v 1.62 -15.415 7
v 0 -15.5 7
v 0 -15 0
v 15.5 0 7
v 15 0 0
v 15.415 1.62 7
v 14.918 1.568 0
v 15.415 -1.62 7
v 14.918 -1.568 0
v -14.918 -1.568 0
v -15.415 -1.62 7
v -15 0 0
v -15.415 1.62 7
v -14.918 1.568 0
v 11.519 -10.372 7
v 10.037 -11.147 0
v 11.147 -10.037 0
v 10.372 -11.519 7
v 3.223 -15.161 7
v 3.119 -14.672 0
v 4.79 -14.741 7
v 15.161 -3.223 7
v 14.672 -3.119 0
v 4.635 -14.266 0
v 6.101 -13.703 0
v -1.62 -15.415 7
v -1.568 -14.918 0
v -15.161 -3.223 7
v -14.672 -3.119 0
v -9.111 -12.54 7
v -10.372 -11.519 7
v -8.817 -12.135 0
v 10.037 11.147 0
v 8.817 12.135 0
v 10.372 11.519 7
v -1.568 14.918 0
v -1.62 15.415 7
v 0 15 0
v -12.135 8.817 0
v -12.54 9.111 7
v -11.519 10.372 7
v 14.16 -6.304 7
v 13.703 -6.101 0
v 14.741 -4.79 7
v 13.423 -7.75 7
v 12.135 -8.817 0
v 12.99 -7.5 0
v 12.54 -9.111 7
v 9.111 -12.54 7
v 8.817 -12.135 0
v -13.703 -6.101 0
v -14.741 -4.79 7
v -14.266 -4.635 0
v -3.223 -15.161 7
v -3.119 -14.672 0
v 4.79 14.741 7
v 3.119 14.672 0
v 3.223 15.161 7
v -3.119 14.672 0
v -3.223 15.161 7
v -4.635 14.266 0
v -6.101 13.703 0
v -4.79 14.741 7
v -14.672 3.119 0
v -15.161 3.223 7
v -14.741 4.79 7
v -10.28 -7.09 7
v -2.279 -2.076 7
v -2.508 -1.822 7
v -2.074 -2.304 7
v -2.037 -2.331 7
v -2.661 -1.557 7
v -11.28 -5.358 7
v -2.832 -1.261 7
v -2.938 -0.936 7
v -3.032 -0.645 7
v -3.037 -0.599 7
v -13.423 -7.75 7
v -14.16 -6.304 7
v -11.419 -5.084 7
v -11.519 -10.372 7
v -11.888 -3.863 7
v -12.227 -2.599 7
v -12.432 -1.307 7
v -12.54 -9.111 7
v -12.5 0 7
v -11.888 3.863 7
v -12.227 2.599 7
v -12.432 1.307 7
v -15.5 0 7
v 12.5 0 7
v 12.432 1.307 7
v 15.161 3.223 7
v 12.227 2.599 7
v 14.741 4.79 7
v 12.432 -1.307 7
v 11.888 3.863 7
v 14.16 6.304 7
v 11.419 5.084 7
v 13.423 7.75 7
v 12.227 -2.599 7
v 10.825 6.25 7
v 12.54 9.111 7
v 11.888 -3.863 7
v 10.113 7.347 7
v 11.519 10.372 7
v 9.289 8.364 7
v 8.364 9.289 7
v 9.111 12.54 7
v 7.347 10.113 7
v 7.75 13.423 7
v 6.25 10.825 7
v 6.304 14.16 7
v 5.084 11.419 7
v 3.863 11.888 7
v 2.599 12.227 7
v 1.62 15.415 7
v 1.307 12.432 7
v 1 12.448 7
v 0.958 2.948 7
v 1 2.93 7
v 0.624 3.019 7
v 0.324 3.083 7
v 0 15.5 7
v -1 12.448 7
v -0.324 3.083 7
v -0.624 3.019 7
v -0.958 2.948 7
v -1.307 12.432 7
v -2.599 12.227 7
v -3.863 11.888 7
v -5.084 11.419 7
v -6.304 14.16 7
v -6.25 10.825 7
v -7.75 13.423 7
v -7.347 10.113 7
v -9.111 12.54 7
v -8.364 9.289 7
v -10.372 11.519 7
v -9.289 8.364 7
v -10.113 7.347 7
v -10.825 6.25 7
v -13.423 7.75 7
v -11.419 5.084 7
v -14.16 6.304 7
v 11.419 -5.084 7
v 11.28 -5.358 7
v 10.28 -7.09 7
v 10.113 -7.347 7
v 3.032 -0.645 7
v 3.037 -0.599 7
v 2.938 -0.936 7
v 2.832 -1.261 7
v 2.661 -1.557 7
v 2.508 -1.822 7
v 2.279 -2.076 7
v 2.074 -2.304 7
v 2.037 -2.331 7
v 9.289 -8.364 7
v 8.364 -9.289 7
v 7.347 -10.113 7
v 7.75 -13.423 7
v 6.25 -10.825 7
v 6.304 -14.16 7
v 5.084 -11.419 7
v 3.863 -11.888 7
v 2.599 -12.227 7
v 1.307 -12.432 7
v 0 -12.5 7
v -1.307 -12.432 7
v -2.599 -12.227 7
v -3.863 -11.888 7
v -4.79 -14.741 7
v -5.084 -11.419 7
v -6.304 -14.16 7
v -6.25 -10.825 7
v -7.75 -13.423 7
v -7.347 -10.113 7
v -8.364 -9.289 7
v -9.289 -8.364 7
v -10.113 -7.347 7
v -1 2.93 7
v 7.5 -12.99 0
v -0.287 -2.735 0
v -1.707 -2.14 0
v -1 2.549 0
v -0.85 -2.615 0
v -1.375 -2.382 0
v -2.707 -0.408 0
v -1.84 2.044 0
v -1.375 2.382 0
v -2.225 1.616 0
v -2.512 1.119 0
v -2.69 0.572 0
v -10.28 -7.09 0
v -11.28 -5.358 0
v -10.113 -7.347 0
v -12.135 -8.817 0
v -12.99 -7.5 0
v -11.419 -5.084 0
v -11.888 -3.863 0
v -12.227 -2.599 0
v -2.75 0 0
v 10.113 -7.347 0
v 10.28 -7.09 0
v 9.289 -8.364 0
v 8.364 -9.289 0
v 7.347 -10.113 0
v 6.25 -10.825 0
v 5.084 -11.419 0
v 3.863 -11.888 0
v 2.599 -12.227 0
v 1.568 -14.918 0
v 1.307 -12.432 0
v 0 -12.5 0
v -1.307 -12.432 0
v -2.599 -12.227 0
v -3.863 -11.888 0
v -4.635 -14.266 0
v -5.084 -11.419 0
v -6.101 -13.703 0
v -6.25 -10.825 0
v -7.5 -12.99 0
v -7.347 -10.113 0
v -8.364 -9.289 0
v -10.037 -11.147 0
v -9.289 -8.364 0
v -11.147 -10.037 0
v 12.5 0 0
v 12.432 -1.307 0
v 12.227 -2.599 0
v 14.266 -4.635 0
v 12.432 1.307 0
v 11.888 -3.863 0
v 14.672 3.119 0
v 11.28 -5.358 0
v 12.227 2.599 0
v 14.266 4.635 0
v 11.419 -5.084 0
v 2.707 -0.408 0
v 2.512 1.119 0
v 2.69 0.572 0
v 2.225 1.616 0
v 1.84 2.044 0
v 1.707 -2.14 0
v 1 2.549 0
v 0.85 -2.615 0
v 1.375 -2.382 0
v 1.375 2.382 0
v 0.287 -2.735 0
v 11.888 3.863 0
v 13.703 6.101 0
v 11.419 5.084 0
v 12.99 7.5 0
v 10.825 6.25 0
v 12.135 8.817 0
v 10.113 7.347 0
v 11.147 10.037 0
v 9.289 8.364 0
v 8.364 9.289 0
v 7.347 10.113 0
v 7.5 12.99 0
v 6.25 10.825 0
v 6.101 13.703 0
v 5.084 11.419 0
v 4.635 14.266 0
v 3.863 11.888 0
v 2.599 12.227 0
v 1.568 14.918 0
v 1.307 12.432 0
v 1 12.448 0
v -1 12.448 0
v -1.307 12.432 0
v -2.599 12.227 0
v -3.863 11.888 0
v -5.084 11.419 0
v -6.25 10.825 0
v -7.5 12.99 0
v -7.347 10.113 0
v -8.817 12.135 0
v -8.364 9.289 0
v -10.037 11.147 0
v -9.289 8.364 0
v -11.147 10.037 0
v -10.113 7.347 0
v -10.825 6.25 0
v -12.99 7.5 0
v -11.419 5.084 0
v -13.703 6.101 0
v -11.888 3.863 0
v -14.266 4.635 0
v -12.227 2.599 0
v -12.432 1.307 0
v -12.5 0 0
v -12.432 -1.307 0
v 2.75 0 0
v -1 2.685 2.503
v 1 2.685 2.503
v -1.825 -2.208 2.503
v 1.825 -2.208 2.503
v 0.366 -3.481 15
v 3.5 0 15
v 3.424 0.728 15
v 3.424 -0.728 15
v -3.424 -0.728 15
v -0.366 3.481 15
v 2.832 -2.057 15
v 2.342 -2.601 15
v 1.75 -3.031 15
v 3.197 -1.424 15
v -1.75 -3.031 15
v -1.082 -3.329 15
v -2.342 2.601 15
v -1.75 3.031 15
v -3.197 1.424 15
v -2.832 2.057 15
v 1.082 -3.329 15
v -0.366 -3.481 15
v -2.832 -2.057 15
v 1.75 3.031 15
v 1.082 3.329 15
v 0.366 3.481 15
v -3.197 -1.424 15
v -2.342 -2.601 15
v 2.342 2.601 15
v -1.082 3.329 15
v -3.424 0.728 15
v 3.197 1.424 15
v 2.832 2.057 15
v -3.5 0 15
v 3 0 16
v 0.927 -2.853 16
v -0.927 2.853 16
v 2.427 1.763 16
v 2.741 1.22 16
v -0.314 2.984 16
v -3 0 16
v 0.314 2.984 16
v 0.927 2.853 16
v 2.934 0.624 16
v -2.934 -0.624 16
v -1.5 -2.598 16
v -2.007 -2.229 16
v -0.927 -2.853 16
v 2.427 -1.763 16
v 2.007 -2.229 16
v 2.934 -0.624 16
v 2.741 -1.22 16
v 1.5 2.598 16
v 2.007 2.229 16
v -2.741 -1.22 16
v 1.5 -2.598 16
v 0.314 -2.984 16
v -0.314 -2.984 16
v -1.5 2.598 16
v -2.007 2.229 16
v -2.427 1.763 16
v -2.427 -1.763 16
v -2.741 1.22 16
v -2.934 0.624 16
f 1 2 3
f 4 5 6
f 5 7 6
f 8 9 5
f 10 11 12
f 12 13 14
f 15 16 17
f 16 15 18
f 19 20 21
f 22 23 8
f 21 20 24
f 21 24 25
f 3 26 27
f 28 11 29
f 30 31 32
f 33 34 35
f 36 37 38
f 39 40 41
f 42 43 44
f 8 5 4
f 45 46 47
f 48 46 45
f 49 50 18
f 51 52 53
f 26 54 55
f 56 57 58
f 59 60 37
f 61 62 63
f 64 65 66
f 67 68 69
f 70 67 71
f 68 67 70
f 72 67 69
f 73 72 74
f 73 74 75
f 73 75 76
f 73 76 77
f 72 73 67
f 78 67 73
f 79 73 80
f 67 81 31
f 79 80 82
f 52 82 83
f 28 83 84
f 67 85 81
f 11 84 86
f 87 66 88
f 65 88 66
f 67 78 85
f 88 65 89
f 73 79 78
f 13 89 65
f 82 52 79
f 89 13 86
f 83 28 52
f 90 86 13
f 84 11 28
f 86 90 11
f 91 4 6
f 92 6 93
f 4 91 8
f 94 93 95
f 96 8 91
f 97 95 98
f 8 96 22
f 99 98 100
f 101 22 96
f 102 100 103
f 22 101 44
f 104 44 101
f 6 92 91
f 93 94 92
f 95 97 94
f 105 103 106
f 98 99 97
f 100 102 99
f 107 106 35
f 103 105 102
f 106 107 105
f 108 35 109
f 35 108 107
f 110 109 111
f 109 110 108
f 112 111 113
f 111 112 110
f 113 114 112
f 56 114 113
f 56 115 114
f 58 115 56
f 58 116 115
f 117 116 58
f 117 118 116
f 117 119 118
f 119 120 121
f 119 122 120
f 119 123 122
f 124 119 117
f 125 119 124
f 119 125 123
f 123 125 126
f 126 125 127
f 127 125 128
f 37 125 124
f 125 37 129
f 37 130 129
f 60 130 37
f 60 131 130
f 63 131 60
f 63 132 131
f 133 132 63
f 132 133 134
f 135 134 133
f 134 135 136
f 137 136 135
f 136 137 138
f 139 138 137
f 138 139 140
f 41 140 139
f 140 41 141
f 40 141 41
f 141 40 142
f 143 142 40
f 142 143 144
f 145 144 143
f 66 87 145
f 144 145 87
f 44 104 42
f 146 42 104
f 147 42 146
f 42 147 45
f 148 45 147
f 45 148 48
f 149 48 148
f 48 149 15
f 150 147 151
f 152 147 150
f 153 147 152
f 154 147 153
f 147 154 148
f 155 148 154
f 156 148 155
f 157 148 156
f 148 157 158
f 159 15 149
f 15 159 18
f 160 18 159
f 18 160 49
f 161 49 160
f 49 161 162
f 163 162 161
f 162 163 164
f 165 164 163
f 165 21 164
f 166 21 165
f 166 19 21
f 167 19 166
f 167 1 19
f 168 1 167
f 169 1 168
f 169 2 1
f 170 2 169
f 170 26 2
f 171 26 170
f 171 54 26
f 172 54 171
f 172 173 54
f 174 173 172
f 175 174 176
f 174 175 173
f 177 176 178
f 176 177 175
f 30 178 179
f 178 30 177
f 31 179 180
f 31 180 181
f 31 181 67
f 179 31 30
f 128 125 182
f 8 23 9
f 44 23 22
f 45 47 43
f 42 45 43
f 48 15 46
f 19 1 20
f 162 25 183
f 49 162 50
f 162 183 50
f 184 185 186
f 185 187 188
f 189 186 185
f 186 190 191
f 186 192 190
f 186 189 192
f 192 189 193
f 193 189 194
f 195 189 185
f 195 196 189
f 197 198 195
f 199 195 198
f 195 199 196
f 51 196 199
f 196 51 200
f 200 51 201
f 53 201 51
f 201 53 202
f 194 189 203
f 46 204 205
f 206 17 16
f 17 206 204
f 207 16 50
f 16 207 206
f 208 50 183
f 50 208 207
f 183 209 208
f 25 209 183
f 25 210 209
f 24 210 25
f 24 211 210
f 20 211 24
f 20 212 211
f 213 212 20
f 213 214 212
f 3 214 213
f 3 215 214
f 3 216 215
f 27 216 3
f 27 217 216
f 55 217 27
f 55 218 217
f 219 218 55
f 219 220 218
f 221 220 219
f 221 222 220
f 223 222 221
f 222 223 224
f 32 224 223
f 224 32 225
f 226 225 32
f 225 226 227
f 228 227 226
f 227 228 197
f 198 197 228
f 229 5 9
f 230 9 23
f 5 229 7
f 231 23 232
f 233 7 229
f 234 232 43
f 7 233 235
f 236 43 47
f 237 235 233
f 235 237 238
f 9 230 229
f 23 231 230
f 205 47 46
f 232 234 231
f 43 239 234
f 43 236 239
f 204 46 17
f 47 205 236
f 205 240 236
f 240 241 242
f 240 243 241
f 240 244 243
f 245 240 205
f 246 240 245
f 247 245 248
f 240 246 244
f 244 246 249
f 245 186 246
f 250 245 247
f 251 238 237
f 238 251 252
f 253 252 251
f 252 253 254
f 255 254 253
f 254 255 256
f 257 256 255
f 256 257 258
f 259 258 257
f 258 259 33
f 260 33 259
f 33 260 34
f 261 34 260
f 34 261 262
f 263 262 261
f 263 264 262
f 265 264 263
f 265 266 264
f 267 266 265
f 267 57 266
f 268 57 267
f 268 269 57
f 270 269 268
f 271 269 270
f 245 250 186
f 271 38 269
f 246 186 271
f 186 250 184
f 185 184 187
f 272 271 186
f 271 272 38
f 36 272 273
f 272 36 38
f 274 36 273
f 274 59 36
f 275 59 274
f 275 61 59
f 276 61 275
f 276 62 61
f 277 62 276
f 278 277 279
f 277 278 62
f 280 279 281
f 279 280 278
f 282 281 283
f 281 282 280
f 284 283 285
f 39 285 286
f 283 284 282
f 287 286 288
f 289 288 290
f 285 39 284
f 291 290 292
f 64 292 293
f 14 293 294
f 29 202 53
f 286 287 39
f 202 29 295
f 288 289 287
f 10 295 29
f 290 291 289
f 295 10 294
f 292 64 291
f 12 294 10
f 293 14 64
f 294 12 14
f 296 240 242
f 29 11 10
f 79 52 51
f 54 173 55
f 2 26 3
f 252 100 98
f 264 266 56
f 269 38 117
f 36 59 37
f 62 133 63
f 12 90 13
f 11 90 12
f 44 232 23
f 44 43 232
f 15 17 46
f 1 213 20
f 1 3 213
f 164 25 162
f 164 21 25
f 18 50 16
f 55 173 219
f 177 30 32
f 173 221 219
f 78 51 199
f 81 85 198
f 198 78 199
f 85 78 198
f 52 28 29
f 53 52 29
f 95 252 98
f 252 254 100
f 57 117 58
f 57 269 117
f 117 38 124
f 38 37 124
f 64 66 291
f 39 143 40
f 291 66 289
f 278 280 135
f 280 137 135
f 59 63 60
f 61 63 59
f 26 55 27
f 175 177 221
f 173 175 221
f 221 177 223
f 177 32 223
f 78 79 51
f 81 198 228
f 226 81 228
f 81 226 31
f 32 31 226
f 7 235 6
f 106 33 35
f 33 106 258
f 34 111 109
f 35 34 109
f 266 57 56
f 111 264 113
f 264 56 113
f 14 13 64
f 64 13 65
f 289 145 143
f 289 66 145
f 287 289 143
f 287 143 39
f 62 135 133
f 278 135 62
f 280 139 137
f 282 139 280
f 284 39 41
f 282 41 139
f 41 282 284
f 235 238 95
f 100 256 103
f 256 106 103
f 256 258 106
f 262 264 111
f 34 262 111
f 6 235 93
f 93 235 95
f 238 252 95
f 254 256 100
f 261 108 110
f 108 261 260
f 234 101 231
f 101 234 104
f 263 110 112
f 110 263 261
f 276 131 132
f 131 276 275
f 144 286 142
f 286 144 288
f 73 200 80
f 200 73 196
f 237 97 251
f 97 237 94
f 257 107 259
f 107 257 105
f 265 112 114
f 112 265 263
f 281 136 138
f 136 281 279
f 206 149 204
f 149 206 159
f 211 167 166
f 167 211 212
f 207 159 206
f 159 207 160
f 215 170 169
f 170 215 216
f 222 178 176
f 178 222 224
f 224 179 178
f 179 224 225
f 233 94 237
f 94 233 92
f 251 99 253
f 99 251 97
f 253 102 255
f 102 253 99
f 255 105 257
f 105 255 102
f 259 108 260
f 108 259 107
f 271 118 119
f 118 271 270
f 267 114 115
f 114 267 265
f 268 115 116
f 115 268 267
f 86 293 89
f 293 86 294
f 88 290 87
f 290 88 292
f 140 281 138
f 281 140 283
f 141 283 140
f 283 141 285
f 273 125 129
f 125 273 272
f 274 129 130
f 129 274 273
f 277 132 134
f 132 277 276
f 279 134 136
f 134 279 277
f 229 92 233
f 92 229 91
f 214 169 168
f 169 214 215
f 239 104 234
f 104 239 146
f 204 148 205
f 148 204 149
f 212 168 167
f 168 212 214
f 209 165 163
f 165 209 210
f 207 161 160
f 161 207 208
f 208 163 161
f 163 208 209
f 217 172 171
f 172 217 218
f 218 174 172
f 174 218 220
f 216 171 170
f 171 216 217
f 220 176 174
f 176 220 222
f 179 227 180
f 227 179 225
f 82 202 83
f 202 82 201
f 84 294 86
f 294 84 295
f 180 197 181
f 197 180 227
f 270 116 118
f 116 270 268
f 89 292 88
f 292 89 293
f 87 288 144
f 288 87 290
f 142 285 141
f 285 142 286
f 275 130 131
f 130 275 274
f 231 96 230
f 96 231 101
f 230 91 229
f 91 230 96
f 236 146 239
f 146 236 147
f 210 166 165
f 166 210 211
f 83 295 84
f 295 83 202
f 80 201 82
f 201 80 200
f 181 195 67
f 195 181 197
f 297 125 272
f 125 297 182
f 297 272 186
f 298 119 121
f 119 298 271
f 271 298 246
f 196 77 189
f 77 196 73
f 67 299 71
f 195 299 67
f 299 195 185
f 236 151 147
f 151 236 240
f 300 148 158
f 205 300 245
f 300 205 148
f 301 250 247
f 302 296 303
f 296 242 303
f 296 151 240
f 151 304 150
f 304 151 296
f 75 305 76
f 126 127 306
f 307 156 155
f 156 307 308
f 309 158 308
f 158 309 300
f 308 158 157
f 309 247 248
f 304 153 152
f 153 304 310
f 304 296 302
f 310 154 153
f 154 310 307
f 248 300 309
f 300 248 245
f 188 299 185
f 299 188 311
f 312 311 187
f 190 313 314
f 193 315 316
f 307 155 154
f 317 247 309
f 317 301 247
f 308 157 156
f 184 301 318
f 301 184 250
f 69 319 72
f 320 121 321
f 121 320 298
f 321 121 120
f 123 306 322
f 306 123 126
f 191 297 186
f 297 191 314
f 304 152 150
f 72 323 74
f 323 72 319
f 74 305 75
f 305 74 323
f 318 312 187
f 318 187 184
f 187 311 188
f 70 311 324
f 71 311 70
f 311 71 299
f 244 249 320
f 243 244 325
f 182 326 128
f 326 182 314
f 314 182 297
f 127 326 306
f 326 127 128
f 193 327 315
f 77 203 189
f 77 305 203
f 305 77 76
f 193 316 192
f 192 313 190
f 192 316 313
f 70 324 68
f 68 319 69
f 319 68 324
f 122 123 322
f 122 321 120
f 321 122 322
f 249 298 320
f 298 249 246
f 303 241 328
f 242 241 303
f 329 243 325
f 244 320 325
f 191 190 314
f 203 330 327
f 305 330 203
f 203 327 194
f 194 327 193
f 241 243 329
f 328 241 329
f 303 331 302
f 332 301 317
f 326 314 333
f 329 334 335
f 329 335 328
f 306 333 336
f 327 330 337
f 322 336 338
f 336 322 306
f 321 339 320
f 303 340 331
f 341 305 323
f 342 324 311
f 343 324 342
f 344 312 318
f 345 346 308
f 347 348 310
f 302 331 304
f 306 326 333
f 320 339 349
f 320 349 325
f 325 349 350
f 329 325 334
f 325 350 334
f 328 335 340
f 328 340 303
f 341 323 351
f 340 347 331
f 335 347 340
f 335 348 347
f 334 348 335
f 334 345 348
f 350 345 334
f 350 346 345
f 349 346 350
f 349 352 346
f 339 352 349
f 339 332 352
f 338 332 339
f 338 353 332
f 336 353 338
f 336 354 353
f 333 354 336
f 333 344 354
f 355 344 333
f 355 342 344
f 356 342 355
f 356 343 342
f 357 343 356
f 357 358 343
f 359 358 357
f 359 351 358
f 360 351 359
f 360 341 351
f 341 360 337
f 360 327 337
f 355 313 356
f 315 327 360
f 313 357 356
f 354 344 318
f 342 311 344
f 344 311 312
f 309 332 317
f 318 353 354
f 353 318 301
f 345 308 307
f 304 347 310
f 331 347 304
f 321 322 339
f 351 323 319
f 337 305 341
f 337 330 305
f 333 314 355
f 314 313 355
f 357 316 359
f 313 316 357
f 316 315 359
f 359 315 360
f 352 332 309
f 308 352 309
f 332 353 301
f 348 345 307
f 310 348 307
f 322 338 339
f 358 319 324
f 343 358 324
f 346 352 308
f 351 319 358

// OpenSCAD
//Enter OpenSCAD code here.
 echo("Version:",version());
 union(){
translate ([0, 7, 3.5]){cube([2, 15, 7], center=true);}
rotate([0, 0, 120]){ translate ([0, 7, 3.5]) {cube([2, 15, 7], center=true) ;}}
rotate([0, 0, 240]){ translate ([0, 7, 3.5]) {cube([2, 15, 7], center=true) ;}}

translate ([0,  0,  7.5]) { cylinder( r1=2.75, r2=3.5, h=15, center=true, $fn=30); }
translate ([0,  0,  15.5]) { cylinder( r1=3.5, r2=3, h=1, center=true, $fn=30); }

translate ([0,  0,  3.5]) difference(){
  cylinder( r1=15, r2=15.5, h=7, center=true, $fn=60) ;
cylinder( r=12.5, h=8.01, center=true, $fn=60);
    }
}
